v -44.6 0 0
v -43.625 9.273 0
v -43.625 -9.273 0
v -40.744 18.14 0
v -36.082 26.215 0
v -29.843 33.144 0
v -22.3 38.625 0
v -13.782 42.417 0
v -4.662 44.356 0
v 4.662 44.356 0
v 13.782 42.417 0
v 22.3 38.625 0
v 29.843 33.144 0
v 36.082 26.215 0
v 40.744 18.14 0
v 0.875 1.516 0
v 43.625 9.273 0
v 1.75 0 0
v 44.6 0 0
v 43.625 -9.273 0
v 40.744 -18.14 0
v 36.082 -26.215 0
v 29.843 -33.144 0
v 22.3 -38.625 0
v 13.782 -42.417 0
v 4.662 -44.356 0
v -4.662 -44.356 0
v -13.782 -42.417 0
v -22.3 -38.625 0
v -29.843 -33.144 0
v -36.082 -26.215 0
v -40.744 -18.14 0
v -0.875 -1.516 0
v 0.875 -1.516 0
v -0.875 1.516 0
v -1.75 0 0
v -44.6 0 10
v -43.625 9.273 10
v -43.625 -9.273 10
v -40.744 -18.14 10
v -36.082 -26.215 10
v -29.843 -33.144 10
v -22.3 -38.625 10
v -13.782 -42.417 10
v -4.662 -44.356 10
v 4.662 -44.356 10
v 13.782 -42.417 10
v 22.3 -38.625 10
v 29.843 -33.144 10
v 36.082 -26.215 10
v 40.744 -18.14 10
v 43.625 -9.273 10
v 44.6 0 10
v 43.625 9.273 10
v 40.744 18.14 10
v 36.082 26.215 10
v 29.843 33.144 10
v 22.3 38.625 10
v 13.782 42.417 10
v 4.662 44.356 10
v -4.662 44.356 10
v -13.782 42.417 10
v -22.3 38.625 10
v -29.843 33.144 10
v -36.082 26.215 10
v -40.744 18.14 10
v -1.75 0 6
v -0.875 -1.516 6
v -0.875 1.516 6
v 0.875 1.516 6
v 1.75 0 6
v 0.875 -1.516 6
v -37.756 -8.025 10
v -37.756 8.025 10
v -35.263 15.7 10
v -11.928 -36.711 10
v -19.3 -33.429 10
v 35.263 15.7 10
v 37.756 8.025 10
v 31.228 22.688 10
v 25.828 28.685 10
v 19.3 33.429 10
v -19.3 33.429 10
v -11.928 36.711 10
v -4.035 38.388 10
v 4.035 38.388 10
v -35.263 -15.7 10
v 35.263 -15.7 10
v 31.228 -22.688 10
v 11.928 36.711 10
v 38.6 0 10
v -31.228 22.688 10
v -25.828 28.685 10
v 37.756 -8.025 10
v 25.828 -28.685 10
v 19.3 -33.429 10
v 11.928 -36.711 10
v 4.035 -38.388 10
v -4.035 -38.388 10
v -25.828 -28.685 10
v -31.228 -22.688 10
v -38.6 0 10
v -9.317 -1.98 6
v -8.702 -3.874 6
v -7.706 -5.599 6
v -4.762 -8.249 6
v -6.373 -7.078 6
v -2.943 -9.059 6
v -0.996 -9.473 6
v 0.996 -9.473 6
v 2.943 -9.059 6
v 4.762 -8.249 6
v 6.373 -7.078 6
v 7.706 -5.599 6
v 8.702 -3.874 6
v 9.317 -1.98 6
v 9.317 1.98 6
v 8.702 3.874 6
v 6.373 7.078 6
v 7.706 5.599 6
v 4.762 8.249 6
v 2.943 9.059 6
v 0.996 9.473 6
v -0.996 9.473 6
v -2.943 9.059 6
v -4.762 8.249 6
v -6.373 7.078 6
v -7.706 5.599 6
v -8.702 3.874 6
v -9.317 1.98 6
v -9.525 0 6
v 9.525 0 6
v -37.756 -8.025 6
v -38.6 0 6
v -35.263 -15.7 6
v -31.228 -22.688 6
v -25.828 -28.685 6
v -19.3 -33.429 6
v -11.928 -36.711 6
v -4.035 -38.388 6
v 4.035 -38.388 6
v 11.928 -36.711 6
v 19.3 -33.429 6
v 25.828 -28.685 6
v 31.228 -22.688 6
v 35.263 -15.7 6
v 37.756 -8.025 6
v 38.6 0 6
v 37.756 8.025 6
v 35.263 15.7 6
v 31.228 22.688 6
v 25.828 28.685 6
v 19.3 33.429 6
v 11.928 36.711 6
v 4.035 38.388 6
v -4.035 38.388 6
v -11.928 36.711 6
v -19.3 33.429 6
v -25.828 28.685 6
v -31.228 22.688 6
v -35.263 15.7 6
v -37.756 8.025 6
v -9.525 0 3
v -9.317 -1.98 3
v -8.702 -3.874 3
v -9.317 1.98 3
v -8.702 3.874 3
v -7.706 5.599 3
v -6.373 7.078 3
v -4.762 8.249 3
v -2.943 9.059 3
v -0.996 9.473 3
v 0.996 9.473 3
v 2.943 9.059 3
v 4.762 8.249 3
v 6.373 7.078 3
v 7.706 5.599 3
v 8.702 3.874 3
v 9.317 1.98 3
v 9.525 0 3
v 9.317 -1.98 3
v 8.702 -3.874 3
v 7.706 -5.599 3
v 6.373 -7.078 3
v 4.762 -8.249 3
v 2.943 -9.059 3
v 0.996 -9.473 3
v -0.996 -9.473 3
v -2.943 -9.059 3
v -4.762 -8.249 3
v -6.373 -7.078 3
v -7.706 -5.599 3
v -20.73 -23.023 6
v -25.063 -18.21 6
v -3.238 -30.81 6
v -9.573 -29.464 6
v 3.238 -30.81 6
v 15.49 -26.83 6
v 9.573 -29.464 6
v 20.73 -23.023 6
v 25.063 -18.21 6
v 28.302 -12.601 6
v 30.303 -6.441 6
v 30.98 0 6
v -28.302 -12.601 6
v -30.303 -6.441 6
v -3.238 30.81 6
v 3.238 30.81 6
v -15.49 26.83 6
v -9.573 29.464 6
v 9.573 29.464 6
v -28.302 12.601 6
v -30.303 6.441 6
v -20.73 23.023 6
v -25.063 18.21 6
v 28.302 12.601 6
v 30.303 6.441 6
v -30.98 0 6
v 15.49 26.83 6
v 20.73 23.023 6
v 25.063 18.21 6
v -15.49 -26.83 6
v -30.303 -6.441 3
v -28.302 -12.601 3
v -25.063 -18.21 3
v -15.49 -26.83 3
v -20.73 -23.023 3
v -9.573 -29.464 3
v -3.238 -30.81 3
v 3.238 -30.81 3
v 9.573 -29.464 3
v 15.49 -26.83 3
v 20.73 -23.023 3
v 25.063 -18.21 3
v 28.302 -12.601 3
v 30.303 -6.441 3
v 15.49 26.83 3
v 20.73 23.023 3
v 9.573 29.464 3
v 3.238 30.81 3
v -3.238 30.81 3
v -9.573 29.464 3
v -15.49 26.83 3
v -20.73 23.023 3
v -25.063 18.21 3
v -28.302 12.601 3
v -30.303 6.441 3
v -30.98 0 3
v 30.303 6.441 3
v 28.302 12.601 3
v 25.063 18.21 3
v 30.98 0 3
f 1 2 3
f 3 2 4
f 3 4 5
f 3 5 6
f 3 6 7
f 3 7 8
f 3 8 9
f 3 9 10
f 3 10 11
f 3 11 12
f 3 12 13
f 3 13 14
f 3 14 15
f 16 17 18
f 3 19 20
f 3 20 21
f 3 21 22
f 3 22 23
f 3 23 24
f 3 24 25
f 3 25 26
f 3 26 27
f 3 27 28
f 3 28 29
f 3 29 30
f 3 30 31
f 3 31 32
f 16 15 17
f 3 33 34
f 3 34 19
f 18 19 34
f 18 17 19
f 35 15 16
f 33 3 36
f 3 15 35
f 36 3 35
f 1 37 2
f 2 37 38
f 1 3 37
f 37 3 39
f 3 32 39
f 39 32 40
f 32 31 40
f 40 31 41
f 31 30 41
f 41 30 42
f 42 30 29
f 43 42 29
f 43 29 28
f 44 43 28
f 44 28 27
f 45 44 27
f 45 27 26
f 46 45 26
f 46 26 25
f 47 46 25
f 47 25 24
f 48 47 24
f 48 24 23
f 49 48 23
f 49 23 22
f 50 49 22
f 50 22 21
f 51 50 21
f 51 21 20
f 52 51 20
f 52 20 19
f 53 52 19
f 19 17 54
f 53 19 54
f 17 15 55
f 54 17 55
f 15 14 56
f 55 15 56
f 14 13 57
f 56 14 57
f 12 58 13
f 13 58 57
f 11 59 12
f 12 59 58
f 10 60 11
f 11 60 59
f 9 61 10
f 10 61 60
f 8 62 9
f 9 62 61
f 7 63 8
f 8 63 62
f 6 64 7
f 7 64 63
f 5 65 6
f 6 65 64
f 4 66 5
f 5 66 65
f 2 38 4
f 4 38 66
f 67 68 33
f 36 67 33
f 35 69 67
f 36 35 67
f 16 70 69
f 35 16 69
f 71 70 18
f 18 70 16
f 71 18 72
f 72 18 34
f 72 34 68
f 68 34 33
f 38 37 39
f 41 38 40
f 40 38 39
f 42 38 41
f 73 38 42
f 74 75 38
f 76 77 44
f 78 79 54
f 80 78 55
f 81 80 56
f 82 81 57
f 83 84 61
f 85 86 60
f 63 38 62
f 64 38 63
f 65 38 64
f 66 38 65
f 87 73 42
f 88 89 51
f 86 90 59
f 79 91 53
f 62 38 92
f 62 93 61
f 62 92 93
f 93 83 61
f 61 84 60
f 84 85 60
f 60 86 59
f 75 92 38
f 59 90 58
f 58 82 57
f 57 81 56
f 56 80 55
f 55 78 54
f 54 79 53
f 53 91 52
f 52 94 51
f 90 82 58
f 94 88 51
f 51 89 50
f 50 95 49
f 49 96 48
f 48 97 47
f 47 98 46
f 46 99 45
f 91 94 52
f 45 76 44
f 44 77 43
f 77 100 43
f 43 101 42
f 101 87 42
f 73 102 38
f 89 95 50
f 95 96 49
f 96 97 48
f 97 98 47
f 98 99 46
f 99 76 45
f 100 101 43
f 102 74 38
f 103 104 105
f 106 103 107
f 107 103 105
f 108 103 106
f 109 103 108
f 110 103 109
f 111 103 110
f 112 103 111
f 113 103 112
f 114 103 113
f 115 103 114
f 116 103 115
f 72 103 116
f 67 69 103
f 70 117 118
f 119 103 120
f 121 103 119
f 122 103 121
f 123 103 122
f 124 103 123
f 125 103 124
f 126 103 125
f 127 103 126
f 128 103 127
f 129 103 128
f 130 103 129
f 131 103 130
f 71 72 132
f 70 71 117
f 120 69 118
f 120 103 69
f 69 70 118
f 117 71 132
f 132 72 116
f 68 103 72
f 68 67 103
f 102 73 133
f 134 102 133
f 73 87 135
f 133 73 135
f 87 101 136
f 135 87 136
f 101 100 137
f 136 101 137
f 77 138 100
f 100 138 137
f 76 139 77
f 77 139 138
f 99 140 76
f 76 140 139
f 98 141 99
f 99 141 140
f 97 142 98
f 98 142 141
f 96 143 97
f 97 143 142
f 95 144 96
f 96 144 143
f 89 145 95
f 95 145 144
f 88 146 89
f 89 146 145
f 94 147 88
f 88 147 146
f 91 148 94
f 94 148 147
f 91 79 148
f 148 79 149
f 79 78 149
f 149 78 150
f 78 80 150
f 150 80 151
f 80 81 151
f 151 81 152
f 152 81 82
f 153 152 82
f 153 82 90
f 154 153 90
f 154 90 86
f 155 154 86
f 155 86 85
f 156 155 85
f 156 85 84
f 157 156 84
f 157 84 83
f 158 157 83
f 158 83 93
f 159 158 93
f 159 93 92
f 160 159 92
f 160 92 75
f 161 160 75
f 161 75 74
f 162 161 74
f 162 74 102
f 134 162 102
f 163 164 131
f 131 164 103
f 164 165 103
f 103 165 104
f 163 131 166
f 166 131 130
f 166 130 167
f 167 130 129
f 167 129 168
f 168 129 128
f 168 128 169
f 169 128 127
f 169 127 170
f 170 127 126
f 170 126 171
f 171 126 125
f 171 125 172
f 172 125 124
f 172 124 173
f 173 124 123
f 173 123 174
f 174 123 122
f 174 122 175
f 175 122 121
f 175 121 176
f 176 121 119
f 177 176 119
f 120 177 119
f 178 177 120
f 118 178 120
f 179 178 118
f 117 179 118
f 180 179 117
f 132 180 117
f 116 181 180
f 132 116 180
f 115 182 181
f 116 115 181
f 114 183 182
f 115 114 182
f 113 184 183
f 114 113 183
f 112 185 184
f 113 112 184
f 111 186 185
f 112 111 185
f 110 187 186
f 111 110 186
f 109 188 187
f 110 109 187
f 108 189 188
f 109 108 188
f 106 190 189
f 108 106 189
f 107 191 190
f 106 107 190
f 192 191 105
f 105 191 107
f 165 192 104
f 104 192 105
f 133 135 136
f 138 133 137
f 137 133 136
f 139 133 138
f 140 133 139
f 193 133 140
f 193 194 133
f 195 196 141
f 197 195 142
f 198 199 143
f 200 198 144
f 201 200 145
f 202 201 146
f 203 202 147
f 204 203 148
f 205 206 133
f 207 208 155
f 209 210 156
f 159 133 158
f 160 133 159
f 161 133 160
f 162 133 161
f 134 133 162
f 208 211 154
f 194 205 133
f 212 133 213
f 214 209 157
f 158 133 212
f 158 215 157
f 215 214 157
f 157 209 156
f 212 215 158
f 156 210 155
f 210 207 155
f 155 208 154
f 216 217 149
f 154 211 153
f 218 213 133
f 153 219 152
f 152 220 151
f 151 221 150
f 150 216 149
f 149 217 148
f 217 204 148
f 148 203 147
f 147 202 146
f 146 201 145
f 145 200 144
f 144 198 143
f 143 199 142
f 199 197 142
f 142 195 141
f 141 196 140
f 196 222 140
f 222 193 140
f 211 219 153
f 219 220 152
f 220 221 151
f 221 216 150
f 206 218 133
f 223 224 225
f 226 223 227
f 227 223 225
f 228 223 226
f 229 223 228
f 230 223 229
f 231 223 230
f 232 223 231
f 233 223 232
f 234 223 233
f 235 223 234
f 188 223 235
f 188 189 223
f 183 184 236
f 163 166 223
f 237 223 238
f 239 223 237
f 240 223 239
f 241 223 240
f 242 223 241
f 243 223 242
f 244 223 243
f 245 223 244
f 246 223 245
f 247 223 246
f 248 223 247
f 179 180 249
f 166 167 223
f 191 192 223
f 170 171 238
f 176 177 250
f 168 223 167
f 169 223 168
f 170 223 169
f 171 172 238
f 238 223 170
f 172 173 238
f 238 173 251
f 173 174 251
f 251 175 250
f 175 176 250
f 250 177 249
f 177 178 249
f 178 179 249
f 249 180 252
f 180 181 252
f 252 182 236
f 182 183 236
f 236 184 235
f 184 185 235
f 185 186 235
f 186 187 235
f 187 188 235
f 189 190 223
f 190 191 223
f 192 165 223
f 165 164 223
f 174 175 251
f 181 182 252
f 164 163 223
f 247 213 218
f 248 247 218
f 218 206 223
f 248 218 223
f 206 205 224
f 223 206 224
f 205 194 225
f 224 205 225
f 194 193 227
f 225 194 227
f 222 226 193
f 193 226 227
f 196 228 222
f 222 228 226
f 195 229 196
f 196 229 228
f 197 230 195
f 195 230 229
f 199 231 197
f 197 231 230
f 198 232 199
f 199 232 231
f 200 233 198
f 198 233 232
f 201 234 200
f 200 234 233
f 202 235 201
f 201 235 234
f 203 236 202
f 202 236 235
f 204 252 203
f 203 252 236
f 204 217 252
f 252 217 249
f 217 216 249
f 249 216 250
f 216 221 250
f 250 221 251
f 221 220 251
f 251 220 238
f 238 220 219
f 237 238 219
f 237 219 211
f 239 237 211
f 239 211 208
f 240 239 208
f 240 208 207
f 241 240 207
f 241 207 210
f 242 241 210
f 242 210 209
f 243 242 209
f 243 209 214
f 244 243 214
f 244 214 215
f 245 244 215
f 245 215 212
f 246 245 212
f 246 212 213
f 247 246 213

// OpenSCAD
TOLERANCE = 0.5;
MIRROR_D = 76.2;
MIRROR_HOLE_D = 3.5;
INSET_H = 4;
WALL_T = 6;

mirror_mount();

module mirror_mount() {
  difference() {
    cylinder(r=MIRROR_D/2 + WALL_T + TOLERANCE, h=WALL_T+INSET_H);
    translate([0, 0, WALL_T])
      cylinder(r=MIRROR_D/2 + TOLERANCE, h=INSET_H+TOLERANCE);
    translate([0, 0, -TOLERANCE])
      cylinder(r=MIRROR_HOLE_D/2, h=WALL_T+TOLERANCE*2);
    translate([0, 0, WALL_T/2])
      cutout();
  }
}

module cutout() {
  difference() {
    cylinder(r=MIRROR_D/2.5 + TOLERANCE, h=WALL_T+INSET_H+TOLERANCE*2);
    translate([0, 0, -TOLERANCE])
      cylinder(r=MIRROR_D/8, h=WALL_T+INSET_H+TOLERANCE*4);
  }
}
